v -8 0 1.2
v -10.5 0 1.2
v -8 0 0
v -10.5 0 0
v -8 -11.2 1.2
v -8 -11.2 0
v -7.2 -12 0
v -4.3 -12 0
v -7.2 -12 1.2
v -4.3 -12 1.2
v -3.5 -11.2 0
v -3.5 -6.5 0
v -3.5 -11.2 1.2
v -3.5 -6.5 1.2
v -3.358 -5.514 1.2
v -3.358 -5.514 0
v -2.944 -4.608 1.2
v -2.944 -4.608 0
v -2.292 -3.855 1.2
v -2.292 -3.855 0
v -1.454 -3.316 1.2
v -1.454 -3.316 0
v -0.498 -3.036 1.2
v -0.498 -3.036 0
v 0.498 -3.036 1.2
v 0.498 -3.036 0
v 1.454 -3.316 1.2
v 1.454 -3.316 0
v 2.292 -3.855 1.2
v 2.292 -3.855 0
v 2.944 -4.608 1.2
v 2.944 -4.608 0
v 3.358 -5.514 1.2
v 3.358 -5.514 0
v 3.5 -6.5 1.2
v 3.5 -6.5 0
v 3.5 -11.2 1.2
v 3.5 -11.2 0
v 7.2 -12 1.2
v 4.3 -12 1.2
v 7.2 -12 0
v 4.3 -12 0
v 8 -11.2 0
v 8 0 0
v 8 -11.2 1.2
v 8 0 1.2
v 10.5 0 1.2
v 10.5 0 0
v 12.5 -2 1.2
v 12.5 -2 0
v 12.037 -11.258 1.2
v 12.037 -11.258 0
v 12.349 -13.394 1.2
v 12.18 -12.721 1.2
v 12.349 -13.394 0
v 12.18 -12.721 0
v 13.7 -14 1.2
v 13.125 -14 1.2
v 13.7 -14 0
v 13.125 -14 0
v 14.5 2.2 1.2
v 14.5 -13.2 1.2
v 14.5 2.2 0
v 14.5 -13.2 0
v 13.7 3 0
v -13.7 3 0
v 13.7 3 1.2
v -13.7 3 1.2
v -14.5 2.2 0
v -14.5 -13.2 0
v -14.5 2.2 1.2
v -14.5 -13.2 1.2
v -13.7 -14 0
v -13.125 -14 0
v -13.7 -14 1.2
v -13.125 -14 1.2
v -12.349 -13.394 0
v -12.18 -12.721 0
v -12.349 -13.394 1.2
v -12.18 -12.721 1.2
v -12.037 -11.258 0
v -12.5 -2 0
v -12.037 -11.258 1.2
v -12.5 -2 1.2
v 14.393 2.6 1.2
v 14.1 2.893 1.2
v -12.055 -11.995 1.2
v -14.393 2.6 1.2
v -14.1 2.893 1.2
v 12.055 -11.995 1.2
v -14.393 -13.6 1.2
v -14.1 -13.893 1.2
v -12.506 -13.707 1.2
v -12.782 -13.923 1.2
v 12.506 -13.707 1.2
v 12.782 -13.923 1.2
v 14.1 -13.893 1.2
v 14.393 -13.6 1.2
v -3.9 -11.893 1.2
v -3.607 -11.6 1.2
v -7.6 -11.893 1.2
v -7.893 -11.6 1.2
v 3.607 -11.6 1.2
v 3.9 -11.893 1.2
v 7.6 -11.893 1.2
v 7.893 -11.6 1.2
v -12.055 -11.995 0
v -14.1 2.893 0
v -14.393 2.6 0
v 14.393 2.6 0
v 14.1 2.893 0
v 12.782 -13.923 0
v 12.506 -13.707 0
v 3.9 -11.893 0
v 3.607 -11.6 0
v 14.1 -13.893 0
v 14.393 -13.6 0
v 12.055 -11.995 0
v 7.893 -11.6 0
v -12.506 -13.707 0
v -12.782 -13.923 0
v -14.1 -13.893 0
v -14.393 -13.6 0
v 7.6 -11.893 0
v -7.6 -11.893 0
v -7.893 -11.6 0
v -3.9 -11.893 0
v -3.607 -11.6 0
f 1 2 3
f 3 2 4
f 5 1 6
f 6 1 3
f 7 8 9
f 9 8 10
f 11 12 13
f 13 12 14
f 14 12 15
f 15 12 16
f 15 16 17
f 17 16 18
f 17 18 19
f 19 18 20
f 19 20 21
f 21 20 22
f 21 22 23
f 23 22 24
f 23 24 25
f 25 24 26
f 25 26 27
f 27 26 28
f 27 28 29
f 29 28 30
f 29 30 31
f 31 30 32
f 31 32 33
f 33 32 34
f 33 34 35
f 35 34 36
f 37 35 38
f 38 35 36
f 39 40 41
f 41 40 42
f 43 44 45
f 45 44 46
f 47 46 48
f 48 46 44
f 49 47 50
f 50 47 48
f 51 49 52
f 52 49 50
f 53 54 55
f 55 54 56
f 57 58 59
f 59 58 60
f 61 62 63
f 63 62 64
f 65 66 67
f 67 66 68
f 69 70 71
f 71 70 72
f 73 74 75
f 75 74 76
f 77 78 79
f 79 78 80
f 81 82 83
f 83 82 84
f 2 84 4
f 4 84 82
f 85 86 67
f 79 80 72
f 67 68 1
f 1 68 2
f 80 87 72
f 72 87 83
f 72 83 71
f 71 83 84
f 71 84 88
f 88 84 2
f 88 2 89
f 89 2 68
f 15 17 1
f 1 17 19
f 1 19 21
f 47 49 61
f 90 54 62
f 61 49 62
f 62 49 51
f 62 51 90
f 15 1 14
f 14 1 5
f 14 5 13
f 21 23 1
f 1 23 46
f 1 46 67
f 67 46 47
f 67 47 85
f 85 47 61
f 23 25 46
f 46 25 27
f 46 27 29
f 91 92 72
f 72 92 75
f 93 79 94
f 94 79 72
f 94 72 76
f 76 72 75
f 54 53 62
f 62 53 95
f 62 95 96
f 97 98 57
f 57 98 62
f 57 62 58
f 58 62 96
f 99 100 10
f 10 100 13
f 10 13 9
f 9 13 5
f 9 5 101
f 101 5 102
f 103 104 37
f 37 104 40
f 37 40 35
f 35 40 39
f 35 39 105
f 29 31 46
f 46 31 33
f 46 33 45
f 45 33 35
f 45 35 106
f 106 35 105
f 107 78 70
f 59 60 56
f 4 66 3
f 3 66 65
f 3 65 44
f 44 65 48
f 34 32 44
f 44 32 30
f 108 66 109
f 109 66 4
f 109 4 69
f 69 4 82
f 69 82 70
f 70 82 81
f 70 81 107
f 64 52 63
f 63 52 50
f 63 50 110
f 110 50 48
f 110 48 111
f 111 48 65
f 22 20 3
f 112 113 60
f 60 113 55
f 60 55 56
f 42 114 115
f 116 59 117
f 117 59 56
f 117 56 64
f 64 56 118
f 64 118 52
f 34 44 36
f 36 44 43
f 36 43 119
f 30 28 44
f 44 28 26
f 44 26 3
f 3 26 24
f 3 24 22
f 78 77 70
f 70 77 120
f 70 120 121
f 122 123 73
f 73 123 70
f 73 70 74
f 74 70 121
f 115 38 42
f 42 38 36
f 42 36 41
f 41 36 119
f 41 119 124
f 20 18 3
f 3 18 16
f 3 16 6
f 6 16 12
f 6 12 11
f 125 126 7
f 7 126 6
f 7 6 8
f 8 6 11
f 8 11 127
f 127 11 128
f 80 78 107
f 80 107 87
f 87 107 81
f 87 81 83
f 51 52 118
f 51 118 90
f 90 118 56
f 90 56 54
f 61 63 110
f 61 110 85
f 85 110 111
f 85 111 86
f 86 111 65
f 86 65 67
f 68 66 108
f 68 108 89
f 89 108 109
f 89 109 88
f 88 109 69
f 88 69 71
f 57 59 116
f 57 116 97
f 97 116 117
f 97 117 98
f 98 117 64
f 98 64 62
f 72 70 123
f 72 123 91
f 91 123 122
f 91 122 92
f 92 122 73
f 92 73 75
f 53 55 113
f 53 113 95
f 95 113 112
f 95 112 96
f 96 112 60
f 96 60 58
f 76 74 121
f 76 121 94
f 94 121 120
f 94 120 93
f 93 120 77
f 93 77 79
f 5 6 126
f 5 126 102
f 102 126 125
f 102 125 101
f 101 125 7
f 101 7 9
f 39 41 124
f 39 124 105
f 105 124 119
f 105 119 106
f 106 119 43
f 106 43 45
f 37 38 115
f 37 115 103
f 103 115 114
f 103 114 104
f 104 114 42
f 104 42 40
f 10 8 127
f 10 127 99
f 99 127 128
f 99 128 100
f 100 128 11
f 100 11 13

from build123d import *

# Parameters (mm, degrees)
BOSS_EXTRUDE1_DEPTH = 1.2
FILLET1_R           = 5
FILLET2_R           = 0.8


with BuildPart() as part:
    # Sketch1 → Boss-Extrude1 (new body)
    with BuildSketch(Plane.XY):
        with BuildLine():
            Line((-10.5, 0), (-12.5, -2))
            Line((-12.5, -2), (-12, -12))
            Line((-12, -12), (-12.5, -14))
            Line((-12.5, -14), (-14.5, -14))
            Line((-14.5, -14), (-14.5, 3))
            Line((-14.5, 3), (-12.5, 3))
            Line((-12.5, 3), (12.5, 3))
            Line((12.5, 3), (14.5, 3))
            Line((14.5, 3), (14.5, -14))
            Line((14.5, -14), (12.5, -14))
            Line((12.5, -14), (12, -12))
            Line((12, -12), (12.5, -2))
            Line((12.5, -2), (10.5, 0))
            Line((10.5, 0), (8, 0))
            Line((8, 0), (8, -12))
            Line((8, -12), (3.5, -12))
            Line((3.5, -12), (3.5, -6.5))
            ThreePointArc((3.5, -6.5), (0, -3), (-3.5, -6.5))
            Line((-3.5, -6.5), (-3.5, -12))
            Line((-3.5, -12), (-8, -12))
            Line((-8, -12), (-8, 0))
            Line((-8, 0), (-10.5, 0))
        make_face()
    extrude(amount=BOSS_EXTRUDE1_DEPTH)

    # Fillet1
    fillet1_edges = [part.edges().sort_by_distance(p)[0] for p in [
        (-12, -12, 0.6),
        (12, -12, 0.6),
    ]]
    fillet(fillet1_edges, radius=FILLET1_R)

    # Fillet2
    fillet2_edges = [part.edges().sort_by_distance(p)[0] for p in [
        (-12.5, -14, 0.6),
        (-14.5, -14, 0.6),
        (-14.5, 3, 0.6),
        (14.5, 3, 0.6),
        (14.5, -14, 0.6),
        (12.5, -14, 0.6),
        (8, -12, 0.6),
        (3.5, -12, 0.6),
        (-3.5, -12, 0.6),
        (-8, -12, 0.6),
    ]]
    fillet(fillet2_edges, radius=FILLET2_R)


solid = part.part
